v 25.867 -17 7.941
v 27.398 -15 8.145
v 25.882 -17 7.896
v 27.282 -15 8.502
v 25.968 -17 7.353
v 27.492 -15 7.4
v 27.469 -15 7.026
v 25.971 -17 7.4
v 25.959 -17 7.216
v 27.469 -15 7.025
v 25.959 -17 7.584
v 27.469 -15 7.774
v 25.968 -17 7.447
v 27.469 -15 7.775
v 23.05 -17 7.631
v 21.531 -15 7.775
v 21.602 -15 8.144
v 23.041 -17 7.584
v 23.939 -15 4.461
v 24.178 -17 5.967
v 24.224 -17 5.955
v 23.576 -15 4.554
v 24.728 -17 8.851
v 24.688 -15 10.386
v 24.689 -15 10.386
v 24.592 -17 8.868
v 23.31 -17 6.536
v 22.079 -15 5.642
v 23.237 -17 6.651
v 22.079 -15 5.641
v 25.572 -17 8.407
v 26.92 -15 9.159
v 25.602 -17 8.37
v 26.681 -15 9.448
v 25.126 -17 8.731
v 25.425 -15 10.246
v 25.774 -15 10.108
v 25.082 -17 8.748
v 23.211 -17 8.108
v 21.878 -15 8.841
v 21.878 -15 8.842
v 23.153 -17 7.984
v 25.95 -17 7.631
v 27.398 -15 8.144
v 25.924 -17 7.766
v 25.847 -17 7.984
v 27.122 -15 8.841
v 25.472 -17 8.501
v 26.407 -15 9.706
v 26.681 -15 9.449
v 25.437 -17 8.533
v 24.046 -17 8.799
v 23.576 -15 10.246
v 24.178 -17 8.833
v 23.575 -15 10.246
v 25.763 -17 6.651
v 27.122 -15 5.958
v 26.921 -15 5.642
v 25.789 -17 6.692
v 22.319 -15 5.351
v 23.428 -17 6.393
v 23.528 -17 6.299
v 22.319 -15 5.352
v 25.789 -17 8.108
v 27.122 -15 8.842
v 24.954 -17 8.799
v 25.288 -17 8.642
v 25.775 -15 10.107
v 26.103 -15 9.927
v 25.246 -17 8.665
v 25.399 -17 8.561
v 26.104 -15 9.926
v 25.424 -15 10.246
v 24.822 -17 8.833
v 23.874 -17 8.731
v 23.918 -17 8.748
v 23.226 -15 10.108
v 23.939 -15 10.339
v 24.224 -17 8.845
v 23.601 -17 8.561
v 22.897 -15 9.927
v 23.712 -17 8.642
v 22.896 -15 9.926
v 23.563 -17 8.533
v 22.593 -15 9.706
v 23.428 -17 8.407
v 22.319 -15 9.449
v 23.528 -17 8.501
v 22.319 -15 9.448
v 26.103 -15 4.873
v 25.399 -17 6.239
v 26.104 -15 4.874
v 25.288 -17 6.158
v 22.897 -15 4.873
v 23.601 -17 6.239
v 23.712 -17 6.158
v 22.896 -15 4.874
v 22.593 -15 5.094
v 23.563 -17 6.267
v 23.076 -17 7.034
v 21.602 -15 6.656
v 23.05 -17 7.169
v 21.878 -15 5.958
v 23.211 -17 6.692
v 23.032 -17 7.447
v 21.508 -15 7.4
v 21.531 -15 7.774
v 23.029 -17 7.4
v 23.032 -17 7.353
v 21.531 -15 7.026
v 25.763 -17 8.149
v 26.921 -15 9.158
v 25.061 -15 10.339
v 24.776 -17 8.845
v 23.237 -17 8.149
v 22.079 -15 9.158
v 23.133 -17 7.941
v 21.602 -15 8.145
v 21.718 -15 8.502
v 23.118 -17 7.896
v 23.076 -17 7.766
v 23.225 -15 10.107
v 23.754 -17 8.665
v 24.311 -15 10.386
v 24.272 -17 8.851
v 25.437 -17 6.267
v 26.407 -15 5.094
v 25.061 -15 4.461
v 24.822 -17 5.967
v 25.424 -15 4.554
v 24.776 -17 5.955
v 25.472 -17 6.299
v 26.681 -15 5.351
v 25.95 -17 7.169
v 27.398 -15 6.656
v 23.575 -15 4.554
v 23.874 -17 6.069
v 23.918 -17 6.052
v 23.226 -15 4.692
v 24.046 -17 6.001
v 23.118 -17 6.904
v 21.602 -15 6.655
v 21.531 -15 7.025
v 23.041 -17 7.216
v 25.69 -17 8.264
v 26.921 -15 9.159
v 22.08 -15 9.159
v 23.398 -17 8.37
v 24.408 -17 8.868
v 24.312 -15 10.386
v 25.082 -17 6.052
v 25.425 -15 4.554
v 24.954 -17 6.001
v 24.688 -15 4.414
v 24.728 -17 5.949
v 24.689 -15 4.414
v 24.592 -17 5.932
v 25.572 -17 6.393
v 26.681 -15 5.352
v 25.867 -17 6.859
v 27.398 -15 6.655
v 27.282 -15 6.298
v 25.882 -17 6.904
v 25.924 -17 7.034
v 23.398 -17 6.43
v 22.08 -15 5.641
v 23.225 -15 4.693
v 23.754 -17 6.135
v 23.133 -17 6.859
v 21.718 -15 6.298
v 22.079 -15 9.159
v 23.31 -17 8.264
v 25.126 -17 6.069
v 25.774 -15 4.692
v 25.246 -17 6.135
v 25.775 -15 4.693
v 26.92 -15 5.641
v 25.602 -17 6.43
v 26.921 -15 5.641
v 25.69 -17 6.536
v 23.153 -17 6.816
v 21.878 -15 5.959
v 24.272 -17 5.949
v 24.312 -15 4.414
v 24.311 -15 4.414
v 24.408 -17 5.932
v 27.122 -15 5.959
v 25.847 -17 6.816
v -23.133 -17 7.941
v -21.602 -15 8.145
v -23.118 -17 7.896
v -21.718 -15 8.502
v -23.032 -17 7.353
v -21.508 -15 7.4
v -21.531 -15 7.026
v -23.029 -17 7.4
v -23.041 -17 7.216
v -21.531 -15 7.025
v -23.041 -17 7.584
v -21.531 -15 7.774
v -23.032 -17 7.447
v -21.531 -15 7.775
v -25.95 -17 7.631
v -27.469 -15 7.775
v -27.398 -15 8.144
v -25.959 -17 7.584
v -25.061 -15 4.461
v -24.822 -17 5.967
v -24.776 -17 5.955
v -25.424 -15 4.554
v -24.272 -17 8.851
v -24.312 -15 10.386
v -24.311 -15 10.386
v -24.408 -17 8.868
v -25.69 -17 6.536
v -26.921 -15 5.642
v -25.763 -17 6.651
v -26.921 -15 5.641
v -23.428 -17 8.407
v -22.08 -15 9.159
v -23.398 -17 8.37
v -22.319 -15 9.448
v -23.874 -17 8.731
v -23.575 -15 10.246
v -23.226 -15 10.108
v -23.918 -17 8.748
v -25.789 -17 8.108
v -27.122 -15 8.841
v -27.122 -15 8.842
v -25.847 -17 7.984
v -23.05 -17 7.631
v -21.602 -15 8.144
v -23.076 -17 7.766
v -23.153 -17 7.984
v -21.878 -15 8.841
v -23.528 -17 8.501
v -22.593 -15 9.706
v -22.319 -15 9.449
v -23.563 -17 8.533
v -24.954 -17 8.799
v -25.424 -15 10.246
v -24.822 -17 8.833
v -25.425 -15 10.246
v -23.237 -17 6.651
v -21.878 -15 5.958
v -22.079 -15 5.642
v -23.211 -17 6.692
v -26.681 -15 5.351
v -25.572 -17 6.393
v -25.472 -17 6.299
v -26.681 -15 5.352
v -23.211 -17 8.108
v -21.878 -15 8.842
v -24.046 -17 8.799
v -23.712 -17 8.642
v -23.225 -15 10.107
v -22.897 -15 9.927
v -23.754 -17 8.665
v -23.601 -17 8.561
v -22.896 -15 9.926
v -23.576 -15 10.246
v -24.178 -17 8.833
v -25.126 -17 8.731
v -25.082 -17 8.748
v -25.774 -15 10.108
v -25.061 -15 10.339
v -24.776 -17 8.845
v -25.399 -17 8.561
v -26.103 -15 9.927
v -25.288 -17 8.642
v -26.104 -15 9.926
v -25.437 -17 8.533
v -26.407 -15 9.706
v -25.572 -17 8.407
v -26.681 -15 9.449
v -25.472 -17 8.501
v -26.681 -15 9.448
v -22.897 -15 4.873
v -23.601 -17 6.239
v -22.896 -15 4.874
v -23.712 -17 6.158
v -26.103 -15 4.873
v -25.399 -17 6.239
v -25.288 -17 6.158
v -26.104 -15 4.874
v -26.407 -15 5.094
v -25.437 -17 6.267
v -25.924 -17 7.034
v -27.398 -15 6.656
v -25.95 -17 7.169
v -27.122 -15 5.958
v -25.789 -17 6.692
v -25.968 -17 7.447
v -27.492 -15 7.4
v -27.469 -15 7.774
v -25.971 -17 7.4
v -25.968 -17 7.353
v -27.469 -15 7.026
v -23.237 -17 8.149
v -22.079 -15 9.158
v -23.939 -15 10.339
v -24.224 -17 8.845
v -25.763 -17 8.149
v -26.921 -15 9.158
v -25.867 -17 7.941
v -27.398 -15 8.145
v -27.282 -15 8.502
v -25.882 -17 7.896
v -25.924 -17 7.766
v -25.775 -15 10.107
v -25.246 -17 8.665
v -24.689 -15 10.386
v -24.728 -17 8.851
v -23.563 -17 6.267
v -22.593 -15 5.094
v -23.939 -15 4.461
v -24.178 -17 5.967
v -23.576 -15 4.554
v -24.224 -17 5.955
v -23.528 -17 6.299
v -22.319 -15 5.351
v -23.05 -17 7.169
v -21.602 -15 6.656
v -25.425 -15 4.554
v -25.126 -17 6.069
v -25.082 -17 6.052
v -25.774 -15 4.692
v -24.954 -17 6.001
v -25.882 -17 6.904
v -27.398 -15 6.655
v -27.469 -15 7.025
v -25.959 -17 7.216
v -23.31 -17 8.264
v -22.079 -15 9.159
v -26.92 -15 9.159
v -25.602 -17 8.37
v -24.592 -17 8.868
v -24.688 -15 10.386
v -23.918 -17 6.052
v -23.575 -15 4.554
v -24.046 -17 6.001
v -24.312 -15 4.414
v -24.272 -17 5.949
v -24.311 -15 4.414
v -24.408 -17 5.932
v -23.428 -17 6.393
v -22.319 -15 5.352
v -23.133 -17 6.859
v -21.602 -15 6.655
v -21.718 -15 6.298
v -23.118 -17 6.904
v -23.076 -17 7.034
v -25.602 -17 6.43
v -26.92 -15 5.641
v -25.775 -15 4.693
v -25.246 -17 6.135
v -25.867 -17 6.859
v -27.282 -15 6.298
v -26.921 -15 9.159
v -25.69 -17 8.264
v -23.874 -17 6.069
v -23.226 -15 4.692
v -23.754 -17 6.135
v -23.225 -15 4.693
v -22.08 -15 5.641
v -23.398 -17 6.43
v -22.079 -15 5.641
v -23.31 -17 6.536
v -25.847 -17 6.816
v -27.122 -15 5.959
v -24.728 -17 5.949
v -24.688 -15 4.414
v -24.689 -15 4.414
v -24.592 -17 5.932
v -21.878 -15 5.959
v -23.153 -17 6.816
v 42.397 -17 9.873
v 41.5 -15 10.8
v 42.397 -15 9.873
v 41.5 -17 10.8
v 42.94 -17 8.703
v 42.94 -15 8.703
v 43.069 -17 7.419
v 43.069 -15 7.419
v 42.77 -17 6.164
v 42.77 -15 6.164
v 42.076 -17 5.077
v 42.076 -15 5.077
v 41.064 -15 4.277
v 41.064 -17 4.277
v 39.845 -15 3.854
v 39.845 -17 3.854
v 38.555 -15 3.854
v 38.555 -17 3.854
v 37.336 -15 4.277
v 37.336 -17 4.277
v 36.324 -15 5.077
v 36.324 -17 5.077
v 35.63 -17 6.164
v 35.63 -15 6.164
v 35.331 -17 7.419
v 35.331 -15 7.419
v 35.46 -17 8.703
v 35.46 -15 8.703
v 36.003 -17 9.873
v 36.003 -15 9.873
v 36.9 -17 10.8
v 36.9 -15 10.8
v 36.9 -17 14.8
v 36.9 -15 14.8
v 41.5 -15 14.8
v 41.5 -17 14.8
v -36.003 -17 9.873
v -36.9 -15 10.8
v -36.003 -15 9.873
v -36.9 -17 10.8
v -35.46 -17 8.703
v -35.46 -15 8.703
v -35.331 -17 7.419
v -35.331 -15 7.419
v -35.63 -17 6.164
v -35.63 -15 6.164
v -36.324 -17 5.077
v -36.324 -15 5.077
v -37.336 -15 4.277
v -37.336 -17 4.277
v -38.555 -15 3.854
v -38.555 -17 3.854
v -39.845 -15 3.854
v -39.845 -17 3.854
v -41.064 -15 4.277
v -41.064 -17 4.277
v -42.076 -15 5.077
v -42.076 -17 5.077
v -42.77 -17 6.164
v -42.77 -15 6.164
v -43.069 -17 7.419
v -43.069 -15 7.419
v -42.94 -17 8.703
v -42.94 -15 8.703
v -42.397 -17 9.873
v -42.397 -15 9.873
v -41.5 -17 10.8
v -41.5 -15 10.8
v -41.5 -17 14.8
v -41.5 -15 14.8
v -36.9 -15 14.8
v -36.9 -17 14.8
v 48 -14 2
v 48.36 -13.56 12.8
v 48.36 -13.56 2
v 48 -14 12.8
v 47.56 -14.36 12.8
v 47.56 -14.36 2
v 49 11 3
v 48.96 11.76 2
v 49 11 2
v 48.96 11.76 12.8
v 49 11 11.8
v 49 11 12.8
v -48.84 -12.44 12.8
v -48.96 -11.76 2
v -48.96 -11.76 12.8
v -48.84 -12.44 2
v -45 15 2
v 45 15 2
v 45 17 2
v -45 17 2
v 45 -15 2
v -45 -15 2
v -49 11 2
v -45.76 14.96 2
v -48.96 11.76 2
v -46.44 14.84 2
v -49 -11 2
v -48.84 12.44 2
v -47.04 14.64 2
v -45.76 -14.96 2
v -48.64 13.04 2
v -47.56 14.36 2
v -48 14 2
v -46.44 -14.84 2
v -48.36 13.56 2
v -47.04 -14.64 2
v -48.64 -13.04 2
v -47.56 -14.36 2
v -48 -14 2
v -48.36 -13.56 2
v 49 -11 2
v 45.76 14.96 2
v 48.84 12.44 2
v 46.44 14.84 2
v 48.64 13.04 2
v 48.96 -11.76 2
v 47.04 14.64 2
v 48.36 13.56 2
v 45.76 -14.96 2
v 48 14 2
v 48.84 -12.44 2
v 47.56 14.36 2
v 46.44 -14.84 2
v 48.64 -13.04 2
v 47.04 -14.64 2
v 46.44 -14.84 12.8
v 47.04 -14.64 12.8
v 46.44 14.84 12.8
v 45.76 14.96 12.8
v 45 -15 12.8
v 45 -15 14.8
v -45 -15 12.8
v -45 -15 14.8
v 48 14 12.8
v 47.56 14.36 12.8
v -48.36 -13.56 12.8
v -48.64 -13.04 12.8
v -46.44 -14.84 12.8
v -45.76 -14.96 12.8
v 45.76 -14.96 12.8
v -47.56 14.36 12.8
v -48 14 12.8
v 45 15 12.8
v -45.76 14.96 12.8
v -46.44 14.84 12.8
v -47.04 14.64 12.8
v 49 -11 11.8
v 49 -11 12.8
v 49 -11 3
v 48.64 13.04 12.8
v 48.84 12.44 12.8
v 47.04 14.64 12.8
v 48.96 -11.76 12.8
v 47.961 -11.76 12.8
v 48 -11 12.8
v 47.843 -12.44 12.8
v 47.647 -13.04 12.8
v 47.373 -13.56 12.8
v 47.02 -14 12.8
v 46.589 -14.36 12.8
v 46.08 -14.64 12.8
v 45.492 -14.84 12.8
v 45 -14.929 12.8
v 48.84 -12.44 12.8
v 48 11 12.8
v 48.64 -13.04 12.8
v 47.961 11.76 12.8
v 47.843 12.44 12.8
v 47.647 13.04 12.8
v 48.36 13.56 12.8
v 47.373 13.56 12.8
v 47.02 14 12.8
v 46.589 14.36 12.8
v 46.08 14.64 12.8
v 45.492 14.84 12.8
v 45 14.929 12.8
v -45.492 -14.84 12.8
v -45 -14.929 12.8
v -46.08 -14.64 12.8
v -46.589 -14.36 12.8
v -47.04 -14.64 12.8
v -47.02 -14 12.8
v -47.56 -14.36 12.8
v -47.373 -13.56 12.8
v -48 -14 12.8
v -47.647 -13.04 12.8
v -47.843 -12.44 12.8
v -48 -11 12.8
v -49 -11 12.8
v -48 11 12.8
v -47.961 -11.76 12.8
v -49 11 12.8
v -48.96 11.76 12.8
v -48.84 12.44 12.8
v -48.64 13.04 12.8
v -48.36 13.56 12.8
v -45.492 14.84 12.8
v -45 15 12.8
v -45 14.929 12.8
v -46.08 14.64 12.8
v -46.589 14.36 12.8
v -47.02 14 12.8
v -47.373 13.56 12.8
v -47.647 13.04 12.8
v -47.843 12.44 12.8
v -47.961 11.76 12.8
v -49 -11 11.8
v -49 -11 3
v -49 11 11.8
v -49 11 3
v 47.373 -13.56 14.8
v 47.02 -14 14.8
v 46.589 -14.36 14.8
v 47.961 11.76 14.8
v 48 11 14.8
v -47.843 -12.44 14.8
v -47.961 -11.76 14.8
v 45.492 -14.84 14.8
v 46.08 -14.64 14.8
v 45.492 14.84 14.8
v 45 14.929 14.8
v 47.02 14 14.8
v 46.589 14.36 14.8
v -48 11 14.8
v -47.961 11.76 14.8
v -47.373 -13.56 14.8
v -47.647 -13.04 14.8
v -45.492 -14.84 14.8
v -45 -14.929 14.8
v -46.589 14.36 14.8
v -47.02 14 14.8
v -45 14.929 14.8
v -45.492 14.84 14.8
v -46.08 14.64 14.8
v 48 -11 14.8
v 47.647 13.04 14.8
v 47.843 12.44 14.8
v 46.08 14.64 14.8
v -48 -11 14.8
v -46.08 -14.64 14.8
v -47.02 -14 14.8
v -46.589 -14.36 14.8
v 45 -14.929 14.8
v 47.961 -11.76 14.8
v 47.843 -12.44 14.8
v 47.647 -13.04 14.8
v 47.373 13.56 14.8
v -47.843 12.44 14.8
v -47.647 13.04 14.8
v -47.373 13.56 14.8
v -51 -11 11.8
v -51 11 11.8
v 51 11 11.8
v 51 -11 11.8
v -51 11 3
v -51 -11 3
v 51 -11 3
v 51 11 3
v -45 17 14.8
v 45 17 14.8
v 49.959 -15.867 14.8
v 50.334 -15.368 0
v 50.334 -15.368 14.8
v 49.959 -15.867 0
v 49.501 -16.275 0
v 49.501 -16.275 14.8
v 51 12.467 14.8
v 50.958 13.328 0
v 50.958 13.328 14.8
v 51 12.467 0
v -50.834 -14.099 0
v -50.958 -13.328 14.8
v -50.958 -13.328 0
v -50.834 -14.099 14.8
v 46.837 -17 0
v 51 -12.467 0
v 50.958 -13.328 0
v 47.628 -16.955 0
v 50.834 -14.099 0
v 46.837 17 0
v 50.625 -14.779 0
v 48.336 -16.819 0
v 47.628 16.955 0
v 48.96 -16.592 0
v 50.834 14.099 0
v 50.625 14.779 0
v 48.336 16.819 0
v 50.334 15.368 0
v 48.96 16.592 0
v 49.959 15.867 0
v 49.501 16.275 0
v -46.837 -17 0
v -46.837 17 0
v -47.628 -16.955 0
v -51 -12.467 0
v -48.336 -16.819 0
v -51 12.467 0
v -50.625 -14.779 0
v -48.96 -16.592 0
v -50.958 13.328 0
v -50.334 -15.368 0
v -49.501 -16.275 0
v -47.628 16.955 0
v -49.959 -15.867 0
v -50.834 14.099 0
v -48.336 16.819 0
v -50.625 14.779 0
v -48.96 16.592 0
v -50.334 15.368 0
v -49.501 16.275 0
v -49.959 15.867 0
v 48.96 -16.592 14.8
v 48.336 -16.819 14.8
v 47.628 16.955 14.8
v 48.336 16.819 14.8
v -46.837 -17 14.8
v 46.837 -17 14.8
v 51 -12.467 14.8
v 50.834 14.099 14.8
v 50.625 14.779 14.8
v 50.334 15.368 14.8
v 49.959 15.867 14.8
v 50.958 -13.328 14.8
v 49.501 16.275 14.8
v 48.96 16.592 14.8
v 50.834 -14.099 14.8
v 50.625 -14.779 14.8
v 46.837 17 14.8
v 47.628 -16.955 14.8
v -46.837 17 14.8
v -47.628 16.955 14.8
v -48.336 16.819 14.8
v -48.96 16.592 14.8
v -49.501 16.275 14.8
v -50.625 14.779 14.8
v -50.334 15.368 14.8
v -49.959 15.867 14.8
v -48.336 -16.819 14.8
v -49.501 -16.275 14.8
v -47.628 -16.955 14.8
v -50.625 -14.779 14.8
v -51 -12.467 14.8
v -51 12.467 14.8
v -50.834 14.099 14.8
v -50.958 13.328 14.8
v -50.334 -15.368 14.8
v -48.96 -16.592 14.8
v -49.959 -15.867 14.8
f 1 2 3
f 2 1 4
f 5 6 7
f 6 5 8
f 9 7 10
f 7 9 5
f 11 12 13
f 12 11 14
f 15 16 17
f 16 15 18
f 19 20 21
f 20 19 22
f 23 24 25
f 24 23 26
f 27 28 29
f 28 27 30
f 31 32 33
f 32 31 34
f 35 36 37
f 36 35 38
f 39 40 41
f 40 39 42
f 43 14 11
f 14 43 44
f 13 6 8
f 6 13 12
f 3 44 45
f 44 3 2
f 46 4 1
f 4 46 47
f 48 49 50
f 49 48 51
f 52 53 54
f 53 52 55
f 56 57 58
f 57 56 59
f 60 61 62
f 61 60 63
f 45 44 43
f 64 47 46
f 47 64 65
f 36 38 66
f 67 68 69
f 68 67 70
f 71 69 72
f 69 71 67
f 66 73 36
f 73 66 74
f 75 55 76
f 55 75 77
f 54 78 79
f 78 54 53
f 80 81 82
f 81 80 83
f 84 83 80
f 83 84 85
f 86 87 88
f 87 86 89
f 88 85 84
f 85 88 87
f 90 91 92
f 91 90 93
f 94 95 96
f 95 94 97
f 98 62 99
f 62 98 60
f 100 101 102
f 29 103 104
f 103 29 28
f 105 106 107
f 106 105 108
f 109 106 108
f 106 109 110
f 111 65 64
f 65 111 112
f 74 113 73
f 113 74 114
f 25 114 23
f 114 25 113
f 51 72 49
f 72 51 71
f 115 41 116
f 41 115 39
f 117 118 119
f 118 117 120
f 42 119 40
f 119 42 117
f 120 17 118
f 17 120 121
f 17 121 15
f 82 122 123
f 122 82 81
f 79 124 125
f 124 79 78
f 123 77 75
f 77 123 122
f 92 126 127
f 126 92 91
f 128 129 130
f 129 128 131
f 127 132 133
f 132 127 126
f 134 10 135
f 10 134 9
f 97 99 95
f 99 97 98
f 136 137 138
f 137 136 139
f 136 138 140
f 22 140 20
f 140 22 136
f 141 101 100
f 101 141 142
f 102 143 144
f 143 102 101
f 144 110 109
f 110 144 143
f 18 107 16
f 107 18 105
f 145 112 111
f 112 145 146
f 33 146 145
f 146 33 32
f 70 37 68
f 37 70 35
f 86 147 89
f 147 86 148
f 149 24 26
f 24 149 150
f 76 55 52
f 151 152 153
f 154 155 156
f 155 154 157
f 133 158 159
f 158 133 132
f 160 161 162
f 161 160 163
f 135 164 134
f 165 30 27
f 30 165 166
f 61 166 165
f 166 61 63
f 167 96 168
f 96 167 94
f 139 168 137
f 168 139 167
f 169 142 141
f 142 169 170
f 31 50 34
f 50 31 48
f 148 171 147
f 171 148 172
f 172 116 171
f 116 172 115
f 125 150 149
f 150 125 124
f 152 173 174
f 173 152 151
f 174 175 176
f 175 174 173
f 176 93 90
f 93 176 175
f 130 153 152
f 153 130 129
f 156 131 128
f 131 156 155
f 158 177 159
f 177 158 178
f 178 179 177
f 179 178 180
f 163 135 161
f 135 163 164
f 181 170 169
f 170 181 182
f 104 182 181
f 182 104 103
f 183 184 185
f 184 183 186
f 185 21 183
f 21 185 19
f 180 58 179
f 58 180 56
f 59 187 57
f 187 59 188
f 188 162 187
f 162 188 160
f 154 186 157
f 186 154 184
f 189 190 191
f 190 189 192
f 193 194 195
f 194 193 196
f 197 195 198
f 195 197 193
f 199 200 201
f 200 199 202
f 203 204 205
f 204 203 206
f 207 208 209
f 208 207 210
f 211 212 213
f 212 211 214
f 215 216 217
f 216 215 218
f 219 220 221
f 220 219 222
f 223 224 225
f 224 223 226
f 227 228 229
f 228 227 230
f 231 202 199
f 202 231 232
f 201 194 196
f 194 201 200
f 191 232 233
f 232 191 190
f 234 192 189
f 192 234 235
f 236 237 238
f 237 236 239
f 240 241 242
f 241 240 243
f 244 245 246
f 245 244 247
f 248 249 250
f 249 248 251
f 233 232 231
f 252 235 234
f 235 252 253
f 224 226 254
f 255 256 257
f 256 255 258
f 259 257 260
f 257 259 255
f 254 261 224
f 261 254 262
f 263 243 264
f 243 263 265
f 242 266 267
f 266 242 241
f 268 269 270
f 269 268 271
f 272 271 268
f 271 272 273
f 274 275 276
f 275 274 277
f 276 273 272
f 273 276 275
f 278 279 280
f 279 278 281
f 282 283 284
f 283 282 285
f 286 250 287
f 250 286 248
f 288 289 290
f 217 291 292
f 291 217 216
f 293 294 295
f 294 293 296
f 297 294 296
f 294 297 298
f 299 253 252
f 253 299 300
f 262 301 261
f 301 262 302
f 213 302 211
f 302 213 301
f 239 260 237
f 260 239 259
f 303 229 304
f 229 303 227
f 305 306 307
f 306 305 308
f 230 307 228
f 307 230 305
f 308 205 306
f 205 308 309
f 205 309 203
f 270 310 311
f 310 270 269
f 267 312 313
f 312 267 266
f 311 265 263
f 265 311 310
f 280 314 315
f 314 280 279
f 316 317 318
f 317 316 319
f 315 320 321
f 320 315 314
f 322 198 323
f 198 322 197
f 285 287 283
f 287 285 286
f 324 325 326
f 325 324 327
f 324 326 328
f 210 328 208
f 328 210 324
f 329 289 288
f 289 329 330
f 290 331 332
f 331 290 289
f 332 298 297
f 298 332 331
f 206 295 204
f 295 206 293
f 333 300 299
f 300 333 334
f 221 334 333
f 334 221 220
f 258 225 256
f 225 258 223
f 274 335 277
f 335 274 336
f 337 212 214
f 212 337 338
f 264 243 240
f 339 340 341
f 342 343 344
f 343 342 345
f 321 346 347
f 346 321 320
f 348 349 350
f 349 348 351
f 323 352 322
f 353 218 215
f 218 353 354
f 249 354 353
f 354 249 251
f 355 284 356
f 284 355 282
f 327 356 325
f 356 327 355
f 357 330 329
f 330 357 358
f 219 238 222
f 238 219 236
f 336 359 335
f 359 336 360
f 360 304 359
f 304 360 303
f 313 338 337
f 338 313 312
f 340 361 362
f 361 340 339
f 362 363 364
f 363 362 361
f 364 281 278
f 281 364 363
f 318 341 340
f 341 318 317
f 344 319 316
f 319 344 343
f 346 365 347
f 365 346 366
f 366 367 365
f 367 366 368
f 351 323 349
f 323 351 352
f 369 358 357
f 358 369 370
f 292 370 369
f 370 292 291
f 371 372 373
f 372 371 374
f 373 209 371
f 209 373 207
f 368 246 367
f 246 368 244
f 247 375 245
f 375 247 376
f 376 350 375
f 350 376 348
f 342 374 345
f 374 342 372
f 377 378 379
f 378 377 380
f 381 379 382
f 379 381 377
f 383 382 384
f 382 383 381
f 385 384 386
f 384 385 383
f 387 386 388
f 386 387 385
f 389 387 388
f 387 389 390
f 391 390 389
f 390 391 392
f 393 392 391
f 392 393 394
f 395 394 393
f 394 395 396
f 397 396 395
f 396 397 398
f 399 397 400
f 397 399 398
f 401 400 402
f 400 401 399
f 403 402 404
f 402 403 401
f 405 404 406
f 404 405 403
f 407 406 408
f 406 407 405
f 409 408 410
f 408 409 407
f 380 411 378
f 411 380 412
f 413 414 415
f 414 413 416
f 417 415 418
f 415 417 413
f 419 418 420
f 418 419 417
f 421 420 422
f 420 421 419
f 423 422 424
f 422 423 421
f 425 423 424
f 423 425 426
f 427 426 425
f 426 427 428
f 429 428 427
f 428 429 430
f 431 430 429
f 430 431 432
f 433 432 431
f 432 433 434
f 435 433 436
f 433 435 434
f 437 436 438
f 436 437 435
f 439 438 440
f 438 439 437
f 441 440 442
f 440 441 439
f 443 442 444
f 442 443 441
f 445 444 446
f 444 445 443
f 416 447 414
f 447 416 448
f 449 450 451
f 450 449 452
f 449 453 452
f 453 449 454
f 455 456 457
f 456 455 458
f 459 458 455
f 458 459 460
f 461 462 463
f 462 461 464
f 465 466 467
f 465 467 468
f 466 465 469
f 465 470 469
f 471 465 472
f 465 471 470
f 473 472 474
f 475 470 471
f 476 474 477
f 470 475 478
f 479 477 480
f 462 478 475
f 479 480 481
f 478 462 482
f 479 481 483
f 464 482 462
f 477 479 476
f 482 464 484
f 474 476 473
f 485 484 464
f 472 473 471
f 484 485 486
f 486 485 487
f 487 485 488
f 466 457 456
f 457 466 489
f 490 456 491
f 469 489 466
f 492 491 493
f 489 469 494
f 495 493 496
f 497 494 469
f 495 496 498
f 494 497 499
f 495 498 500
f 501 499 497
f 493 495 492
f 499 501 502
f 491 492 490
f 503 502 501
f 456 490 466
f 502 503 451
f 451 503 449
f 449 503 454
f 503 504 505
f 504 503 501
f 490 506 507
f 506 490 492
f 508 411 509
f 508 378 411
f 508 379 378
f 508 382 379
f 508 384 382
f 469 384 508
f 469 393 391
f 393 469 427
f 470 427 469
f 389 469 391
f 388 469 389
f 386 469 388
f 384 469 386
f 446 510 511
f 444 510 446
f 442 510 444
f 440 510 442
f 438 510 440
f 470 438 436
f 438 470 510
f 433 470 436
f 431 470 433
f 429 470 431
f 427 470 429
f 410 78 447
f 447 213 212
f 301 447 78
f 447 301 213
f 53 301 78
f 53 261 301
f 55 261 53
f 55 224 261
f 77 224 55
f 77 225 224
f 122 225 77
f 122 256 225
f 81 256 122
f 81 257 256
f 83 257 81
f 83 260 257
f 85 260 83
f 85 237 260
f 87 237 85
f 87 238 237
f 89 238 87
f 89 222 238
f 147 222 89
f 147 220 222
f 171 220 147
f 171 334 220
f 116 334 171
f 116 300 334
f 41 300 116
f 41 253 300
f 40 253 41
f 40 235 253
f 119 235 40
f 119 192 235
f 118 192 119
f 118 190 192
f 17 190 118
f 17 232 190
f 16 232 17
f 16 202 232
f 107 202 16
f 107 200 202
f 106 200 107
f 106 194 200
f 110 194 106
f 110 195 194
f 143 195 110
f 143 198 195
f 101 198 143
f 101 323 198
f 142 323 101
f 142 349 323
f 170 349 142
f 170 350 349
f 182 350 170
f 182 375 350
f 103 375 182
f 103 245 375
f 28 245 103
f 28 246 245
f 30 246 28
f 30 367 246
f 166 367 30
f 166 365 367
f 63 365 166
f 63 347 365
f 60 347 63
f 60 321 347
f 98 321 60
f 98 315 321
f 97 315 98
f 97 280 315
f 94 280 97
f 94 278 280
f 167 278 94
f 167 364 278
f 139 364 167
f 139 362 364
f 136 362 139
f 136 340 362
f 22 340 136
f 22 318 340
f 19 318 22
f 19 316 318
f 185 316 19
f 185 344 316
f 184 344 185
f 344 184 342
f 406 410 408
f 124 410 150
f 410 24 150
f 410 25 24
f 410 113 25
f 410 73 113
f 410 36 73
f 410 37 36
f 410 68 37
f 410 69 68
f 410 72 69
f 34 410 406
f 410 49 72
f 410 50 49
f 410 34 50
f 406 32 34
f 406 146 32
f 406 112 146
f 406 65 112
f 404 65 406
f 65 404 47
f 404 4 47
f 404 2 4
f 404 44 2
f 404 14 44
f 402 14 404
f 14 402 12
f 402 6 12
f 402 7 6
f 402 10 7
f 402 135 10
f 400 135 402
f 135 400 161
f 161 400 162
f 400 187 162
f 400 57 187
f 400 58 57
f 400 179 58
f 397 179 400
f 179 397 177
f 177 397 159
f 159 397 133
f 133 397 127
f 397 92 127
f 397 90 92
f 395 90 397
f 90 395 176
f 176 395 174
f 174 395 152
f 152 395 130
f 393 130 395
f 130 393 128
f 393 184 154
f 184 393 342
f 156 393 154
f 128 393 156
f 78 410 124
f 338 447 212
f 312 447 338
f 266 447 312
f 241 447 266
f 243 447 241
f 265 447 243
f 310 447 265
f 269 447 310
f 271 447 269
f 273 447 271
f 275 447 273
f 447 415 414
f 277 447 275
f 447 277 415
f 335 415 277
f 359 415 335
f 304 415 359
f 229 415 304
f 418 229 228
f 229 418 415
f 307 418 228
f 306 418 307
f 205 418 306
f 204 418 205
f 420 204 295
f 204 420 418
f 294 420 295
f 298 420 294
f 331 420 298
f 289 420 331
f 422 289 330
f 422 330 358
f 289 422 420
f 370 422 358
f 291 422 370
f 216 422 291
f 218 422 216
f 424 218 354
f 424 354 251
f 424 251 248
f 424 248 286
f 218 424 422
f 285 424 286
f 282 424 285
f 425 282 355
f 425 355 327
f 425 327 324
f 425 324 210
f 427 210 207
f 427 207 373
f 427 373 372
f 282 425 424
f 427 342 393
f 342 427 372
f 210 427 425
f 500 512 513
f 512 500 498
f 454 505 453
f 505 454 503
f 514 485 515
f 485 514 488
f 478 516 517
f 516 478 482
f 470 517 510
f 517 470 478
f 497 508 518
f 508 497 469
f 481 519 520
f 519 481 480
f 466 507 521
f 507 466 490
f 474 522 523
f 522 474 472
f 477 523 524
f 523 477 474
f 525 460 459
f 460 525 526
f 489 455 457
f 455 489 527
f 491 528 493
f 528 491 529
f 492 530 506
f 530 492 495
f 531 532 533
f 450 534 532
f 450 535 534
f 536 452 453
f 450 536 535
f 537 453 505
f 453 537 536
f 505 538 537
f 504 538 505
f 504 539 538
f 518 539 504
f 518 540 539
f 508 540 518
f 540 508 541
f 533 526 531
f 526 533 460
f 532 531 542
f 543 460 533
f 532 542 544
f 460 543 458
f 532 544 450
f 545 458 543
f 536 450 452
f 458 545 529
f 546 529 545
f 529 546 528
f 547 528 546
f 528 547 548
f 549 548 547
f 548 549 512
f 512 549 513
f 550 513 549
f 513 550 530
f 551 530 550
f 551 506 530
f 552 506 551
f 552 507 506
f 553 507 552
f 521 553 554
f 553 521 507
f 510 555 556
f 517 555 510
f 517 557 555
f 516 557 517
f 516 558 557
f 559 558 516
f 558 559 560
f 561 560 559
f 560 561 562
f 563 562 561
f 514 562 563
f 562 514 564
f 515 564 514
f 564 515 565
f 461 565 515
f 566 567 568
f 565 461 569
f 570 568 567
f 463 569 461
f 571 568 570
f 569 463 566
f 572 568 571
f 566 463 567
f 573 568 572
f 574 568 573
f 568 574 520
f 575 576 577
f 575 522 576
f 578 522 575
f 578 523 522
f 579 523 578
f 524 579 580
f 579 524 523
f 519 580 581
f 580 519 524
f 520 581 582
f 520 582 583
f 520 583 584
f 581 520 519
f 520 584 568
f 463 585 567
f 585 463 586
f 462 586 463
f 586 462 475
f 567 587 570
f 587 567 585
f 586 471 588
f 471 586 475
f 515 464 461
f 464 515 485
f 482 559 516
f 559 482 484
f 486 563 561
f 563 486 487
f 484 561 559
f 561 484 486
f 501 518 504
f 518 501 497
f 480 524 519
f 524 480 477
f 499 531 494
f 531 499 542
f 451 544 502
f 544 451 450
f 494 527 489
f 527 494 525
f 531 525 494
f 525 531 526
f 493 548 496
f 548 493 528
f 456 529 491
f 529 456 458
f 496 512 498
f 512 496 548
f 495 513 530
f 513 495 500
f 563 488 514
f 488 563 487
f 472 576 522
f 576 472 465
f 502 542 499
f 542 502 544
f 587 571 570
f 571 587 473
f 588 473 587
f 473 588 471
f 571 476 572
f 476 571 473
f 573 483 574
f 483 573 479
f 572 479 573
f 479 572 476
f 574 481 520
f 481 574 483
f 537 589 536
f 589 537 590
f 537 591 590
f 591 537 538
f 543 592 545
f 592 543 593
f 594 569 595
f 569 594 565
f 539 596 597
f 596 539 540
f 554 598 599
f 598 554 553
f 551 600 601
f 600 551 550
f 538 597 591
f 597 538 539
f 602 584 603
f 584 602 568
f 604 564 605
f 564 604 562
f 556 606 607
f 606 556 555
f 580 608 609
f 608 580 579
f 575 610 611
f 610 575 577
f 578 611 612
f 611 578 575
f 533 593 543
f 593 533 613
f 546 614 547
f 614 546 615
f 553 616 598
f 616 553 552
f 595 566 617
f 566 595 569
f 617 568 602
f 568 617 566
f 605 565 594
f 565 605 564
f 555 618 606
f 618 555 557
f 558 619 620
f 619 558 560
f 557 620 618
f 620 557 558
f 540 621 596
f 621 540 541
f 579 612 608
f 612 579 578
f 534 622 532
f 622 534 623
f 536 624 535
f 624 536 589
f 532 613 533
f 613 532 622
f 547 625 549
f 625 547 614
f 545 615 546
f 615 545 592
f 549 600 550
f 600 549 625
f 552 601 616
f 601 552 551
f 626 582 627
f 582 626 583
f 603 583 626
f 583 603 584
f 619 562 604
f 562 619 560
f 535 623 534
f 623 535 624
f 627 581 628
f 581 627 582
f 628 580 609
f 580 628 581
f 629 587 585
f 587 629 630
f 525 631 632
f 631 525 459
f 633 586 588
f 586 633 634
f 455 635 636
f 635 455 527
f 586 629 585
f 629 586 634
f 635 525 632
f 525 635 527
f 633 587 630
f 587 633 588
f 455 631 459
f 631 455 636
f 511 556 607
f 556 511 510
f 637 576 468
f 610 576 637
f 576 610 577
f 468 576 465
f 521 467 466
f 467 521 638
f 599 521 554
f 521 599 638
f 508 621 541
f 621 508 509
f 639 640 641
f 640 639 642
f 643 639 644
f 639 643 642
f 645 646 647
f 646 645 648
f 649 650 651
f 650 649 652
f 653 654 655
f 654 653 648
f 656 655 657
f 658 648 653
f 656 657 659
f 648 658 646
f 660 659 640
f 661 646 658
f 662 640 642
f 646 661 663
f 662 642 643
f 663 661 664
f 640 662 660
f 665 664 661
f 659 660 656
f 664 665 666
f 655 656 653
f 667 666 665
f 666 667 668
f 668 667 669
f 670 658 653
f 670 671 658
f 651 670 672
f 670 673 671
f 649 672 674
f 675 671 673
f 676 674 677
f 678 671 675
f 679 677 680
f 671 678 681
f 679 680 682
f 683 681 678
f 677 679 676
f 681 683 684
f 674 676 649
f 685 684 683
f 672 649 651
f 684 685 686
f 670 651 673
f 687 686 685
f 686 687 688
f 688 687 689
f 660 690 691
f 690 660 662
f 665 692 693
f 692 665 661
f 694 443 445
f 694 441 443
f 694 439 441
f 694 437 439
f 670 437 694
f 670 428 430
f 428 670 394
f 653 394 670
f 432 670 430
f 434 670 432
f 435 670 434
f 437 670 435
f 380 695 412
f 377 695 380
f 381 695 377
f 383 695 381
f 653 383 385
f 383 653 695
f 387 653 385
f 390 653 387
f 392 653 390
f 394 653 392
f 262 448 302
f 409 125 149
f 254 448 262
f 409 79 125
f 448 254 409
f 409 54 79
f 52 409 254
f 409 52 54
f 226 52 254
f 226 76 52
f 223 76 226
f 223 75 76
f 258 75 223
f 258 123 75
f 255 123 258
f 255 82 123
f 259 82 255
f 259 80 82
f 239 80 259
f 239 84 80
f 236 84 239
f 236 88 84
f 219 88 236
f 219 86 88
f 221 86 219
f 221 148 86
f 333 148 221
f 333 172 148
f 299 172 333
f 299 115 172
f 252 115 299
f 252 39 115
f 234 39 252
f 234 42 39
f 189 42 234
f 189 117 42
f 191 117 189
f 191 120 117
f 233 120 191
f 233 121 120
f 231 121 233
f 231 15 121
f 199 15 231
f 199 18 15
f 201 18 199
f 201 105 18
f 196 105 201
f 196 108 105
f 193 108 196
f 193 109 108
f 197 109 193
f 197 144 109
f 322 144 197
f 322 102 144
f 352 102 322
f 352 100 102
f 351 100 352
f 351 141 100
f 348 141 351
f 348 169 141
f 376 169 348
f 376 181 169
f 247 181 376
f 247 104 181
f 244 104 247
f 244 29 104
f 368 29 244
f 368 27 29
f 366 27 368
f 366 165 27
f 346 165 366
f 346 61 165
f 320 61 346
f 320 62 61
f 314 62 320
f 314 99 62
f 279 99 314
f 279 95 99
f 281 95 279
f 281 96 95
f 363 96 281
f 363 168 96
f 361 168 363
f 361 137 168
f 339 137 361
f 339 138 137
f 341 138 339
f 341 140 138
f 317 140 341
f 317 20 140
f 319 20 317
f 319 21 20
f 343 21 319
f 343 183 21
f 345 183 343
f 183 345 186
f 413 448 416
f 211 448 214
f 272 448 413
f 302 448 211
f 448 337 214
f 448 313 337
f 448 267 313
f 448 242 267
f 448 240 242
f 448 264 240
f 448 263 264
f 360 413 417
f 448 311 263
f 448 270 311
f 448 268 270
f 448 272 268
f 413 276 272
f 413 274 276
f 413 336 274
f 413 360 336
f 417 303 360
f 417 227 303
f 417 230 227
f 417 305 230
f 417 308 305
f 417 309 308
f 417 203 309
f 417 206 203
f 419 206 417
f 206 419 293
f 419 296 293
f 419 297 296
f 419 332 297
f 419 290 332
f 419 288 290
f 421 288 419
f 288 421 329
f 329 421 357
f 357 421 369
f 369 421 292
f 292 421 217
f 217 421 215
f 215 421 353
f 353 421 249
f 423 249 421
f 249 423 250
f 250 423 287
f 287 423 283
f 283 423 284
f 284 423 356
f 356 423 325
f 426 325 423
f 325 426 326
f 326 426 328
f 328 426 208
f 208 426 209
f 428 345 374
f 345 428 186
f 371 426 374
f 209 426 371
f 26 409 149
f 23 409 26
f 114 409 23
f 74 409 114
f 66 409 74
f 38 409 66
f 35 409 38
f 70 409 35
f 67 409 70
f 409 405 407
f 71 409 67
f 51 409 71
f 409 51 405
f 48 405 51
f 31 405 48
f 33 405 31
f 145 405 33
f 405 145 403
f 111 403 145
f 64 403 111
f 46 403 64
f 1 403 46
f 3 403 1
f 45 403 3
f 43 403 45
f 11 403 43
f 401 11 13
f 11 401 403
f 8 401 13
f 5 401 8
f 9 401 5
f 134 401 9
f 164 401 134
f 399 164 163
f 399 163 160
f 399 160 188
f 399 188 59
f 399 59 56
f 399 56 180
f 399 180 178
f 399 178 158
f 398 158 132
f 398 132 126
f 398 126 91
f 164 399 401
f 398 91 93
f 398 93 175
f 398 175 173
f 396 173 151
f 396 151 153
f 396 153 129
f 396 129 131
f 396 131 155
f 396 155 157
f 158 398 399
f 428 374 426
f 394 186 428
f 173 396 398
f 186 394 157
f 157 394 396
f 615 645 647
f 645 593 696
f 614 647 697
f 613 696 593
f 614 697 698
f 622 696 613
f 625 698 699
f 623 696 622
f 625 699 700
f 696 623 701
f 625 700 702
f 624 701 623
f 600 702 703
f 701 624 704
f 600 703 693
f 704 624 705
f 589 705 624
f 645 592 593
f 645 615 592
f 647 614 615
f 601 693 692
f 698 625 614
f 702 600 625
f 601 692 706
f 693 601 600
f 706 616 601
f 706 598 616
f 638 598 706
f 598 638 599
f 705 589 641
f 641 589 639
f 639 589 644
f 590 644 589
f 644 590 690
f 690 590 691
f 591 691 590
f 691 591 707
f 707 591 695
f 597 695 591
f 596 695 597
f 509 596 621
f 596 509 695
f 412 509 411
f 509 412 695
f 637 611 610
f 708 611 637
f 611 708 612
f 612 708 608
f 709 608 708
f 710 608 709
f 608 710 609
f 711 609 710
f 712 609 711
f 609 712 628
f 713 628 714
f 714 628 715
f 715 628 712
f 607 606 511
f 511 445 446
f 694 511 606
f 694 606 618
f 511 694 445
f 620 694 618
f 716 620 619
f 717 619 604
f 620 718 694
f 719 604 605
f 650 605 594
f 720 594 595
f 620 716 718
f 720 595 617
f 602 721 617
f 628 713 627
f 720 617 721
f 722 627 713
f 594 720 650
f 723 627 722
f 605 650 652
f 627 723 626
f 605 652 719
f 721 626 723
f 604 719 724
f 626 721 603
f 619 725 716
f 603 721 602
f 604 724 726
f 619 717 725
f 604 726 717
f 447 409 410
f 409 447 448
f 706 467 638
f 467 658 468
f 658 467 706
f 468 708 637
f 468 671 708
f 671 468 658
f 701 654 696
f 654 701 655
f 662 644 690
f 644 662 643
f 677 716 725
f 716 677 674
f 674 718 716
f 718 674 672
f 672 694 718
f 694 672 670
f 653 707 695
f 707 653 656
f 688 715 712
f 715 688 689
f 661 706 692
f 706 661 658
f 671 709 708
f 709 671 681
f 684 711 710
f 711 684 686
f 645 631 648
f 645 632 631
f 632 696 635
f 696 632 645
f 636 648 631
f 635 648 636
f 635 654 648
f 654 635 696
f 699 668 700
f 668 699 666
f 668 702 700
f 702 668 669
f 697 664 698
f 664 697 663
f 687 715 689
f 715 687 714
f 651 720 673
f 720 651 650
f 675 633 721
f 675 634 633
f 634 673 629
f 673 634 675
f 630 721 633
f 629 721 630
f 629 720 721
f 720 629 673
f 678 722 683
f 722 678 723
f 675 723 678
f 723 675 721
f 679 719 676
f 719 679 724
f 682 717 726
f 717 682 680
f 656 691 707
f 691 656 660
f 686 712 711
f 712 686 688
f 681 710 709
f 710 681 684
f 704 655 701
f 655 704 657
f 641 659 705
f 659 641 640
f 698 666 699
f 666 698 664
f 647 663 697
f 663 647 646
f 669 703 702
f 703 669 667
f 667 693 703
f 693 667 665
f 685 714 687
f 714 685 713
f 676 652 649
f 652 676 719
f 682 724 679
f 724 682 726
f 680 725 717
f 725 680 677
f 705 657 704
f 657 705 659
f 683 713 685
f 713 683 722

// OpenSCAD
// file: vector.scad
function is_nan(x) = x != x ;

// reverse vector
function reverse(v) = [for (i =[len(v)-1:-1:0]) v[i]];
// repeat vector n-times
function repeat(v, n) = [for (i=[0:n*len(v)-1])  v[ i%len(v) ] ];
// allow negative indexes for vector (counting from the back). -1 is last element in array
function v_index(v, n) = is_undef(n) ? len(v) : n < 0 ? len(v)+n : n ;
// cut slice of vertor. `start` included , `end` excluded.
function slice(v, start, end=undef) = [for (i=[start:v_index(v,end)-1]) v[i] ];

function v_add(v, n) = [for (i=[0:len(v)-1]) v[i]+n ];

assert(reverse([1,2,3]) == [3,2,1]);
assert(repeat([1,2],3) ==  [1, 2, 1, 2, 1, 2]);
assert(v_index([1,2,3],-1)==2);
assert(v_index([1,2,3],0) == 0);
assert(v_index([1,2,3],undef)==3);
assert(slice([1,2,3],1,-1)==[2]);
assert(slice([1,2,3],1)==[2,3]);
assert(v_add([1,2,3],1)==[2,3,4]);
// file: 2d.scad
use <vector.scad>

function max_x(a, i = 0) = (len(a) == 0) ? 0 : (i < len(a) - 1) ? max(a[i][0], max_x(a, i+1)) : a[i][0];
function shift_x(a, dx, scaler=1) = [for ( p=a) [scaler*p[0]+dx,p[1]] ];

function scale_poly(a, s=[1,1]) = [for (p=a) [ s[0]*p[0], s[1]*p[1] ]];
function shift_poly(a, d=[0,0]) = [for (p=a) [ d + p ]];

function inverse_x(a) = shift_x(reverse(a),max_x(a),-1);
function mirror_x(a) = shift_x(reverse(a),0,-1);

function symmetry_x(a) = scale_poly(reverse(a),s=[-1,1]);
function symmetry_y(a) = scale_poly(reverse(a),s=[1,-1]);

function concat_with_undefs(prev,next) = 
    len(prev) == 0 ? next : 
        let (prev_last_p = prev[v_index(prev,-1)]) 
        is_undef(prev_last_p[1])  
            ? concat(slice(prev,0,-1),[[prev_last_p[0],next[0][1]]],next) 
            : is_undef(next[0][1]) 
                ? concat(prev, [[next[0][0],prev_last_p[1]]], slice(next,1)) 
                : concat(prev, next) ;

function join_poly(polys, r = [], i=0) = (i < len(polys)) ? 
    join_poly( polys, concat_with_undefs(r,shift_x(polys[i],max_x(r))) ,i+1) : r;

function line_segment(p1,p2) = [p1,[p2[0]-p1[0], p2[1] - p1[1]]];

function ls_slope(ls) = ls[1][1]/ls[1][0] ;

function ls_distance(ls) = sqrt(pow(ls[1][1],2)+pow(ls[1][0],2));

function ls_angle(ls) = 
    let (ss = sign(ls[1][1]) == -1 ? -1 : 1)
    let (sc = sign(ls[1][0]) == -1 ? -1 : 1)
    let (ts = asin(ls[1][1]/ls_distance(ls))) 
    ts != 0 ? ( sc == -1 ? ss * 180 - ts : ts ) : ss*acos(ls[1][0]/ls_distance(ls))  ;
    
assert(ls_angle([[0, 0], [1, 0]])==0);
assert(ls_angle([[0, 0], [-1, 0]])==180);


function angle_diff_cw(a1, a2) = a1 < a2 ? angle_diff_cw(a1+360, a2) : a1 - a2 ;

function angle_diff_ccw(a1, a2) = angle_diff_cw(a2, a1);

function ls_midpoint(ls) = ls[0]+ls[1]/2;

function ls_endpoint(ls) = ls[0]+ls[1];

function line(slope,pt) = [slope, pt[1]-slope*pt[0]];

function l_y(l,x) = l[0]*x + l[1];

function l_segment(l,x1,x2) = line_segment([x1, l_y(l,x1)], [x2, l_y(l,x2)]);

function ls_line(ls) = let(slope=ls_slope(ls)) line(slope,ls[0]);

function ls_perpendicular(ls) = 
    let (l = ls_line(ls)) 
    let (mp = ls_midpoint(ls))
    line(-1/l[0], mp);

function intersect_lines(l1, l2) = 
    let (x = (l2[1]-l1[1])/(l1[0]-l2[0]))
    [x,l_y(l1,x)];

function interpolate_point(ls,fraction) =  [
    ls[0][0] + fraction*ls[1][0],
    ls[0][1] + fraction*ls[1][1]
];


function bezier_curve( a, b, c ) =
    len(a)==3 ? _bezier_curve(a[0],a[1],a[2]) : _bezier_curve(a,b,c);

function _bezier_curve( p1, p2, p3 ) =
    [line_segment(p1,p2), line_segment(p2, p3)];

function curve_point(bc, fraction) =
    interpolate_point(
        line_segment(
            interpolate_point(bc[0],fraction), 
            interpolate_point(bc[1], fraction)), 
        fraction);

function bc_poly(bc, n_points=10) = [for ( f = [0:1/n_points:1]) curve_point(bc, f)] ;

function rake_poly(up_ramp, down_to_valley, n_of_valleys) = 
    join_poly(concat(
        [up_ramp],
        repeat(
            [
                down_to_valley, 
                inverse_x(down_to_valley) // up on other side of the valley
            ], 
            n_of_valleys),
        [inverse_x(up_ramp)] // down ramp
    ));

function arc_point(a,f) = 
    let(c = a[0])
    let(r = a[1])
    let(initial_angle = a[2])
    let(cw = a[3])
    let(range = a[4])
    let (angle = cw ? initial_angle - f * range : initial_angle + f * range)
    c+[r*cos(angle),r*sin(angle)];

function arc_poly(a, n_points=10) = [for ( f = [0:1/n_points:1]) arc_point(a, f)] ;

function arc( a, b, c ) =
    len(a)==3 ? _arc(a[0],a[1],a[2]) : _arc(a,b,c);

function _arc( p1, p2, p3 ) =
    let(ls1 = line_segment(p1,p2))
    let(ls2 = line_segment(p2,p3))
    let(ls3 = line_segment(p1,p3))    
    let(lp1 = ls_perpendicular(ls1))
    let(lp2 = ls_perpendicular(ls2))
    let(lp3 = ls_perpendicular(ls3))
    let(c12 = intersect_lines(lp1,lp2))
    let(c23 = intersect_lines(lp2,lp3))
    let(c13 = intersect_lines(lp1,lp3))
    let(c = !is_nan(c23[0]) ? c23 : !is_nan(c13[0])? c13 : c12 )
    let(r1 = line_segment(c,p1))
    let(r2 = line_segment(c,p2))
    let(r3 = line_segment(c,p3))
    let(r = ls_distance(r1))
    let(a1 = ls_angle(r1))
    let(a2 = ls_angle(r2))
    let(a3 = ls_angle(r3))
    let(cw = angle_diff_cw(a1,a2) < angle_diff_cw(a1,a3))
    let(a_diff = cw ? angle_diff_cw(a1,a3) : angle_diff_ccw(a1,a3))
    [c,r,a1,cw,a_diff];


// linear interpolation or extrapolation (middle by default or any ratio) 
// using 2 points `a` and `b`
function mid(a,b,ratio=.5) = b + (a-b)*ratio ; 

function triangle(a,b,split=.5,height=.5) =
    let (delta = (mid(a,b,height)-b) * [[0,1],[-1,0]])
    let (z = mid(a,b,split) + delta)
    [a,z,b];

assert(arc([0,0],[0,1],[1,1])==arc([[0,0],[0,1],[1,1]]));
assert(bezier_curve([0,0],[0,1],[1,1])==bezier_curve([[0,0],[0,1],[1,1]]));

// echo(arc([0,0],[0,1],[1,1]));
// echo(arc(triangle([0,0],[1,1],.5,-.5)));

assert(arc([0,0],[0,1],[1,1])==arc(triangle([0,0],[1,1],.5,-.5)));
assert(arc([1,1],[1,2],[2,2])==arc(triangle([1,1],[2,2],.5,-.5)));

// echo(arc([0,0],[1,0],[1,1]));
// echo(arc(triangle([0,0],[1,1],.5,.5)));

assert(arc([0,0],[1,0],[1,1])==arc(triangle([0,0],[1,1],.5,.5)));
assert(arc([1,1],[2,1],[2,2])==arc(triangle([1,1],[2,2],.5,.5)));

// echo(arc(triangle([1,0], [-1,0])));
assert(arc(triangle([1,0], [-1,0])) ==  [[0, 0], 1, 0, false, 180]);

// echo(arc(triangle([0,-1], [0,1])));
assert(arc(triangle([0,-1], [0,1])) ==  [[0, 0], 1, -90, false, 180]);

// echo(arc(triangle([0,-1], [0,1],height=-.5)));
assert(arc(triangle([0,-1], [0,1], height=-.5)) ==  [[0, 0], 1, -90, true, 180]);
// main file
w=98/2;
d=30/2;
r=4; //roundover
o=2; //outside
h=10.8;
l=1;
s=10;
e=0.01;

v=2.3; //releaf param

use <2d.scad>

dm = d-r;
wm = w-r;

c = 6; // Screw top diameter
corner = bc_poly(bezier_curve([w,dm],[w,d],[wm,d]));

in_poly = concat(
    symmetry_y(corner),
    corner,
    symmetry_x(corner),
    symmetry_x(symmetry_y(corner))
);

module countersink(hole_d,hole_h, screw_d,screw_h){
    h = hole_h - screw_h ;
    union(){
        cylinder(d=hole_d,h=h+e,$fn=50);
        translate([0,0,h]) cylinder(d1=hole_d, d2=screw_d,h=screw_h,$fn=50);
    }
}

module backwall_alterations(ww)
    union(){
        // screw hole
        translate([ww/2,-d-5+e,o+h/2]) 
            rotate([-90,0,0]) countersink(2.5,5,c,2.3);
        //relave
        translate([ww*.8,-d-5+e,h]) 
            rotate([-90,0,0])
            linear_extrude(height=10) 
            polygon(concat([[v,-5]],arc_poly(arc([v,0],[0,7],[-v,0]),15),[[-v,-5]]));
    }

difference (){
    linear_extrude(height=o*2+h)
        polygon(points=scale_poly(in_poly,[1+o/w, 1+o/d]));
    union(){
        translate([0,0,o]) 
            linear_extrude(height=h) polygon(points=in_poly);
        translate([0,0,o+h-e]) 
            linear_extrude(height=o*2)
                polygon(points=scale_poly(in_poly,[1-l/w, 1]));
        translate([0, 0, o+h/2])
            cube([3*w, 2*dm, h-2*l],center=true);
        translate([0, d, o+h])
            cube([2*wm, 4*d, 2*h],center=true);
        backwall_alterations(w);
        backwall_alterations(-w);
    }
}
